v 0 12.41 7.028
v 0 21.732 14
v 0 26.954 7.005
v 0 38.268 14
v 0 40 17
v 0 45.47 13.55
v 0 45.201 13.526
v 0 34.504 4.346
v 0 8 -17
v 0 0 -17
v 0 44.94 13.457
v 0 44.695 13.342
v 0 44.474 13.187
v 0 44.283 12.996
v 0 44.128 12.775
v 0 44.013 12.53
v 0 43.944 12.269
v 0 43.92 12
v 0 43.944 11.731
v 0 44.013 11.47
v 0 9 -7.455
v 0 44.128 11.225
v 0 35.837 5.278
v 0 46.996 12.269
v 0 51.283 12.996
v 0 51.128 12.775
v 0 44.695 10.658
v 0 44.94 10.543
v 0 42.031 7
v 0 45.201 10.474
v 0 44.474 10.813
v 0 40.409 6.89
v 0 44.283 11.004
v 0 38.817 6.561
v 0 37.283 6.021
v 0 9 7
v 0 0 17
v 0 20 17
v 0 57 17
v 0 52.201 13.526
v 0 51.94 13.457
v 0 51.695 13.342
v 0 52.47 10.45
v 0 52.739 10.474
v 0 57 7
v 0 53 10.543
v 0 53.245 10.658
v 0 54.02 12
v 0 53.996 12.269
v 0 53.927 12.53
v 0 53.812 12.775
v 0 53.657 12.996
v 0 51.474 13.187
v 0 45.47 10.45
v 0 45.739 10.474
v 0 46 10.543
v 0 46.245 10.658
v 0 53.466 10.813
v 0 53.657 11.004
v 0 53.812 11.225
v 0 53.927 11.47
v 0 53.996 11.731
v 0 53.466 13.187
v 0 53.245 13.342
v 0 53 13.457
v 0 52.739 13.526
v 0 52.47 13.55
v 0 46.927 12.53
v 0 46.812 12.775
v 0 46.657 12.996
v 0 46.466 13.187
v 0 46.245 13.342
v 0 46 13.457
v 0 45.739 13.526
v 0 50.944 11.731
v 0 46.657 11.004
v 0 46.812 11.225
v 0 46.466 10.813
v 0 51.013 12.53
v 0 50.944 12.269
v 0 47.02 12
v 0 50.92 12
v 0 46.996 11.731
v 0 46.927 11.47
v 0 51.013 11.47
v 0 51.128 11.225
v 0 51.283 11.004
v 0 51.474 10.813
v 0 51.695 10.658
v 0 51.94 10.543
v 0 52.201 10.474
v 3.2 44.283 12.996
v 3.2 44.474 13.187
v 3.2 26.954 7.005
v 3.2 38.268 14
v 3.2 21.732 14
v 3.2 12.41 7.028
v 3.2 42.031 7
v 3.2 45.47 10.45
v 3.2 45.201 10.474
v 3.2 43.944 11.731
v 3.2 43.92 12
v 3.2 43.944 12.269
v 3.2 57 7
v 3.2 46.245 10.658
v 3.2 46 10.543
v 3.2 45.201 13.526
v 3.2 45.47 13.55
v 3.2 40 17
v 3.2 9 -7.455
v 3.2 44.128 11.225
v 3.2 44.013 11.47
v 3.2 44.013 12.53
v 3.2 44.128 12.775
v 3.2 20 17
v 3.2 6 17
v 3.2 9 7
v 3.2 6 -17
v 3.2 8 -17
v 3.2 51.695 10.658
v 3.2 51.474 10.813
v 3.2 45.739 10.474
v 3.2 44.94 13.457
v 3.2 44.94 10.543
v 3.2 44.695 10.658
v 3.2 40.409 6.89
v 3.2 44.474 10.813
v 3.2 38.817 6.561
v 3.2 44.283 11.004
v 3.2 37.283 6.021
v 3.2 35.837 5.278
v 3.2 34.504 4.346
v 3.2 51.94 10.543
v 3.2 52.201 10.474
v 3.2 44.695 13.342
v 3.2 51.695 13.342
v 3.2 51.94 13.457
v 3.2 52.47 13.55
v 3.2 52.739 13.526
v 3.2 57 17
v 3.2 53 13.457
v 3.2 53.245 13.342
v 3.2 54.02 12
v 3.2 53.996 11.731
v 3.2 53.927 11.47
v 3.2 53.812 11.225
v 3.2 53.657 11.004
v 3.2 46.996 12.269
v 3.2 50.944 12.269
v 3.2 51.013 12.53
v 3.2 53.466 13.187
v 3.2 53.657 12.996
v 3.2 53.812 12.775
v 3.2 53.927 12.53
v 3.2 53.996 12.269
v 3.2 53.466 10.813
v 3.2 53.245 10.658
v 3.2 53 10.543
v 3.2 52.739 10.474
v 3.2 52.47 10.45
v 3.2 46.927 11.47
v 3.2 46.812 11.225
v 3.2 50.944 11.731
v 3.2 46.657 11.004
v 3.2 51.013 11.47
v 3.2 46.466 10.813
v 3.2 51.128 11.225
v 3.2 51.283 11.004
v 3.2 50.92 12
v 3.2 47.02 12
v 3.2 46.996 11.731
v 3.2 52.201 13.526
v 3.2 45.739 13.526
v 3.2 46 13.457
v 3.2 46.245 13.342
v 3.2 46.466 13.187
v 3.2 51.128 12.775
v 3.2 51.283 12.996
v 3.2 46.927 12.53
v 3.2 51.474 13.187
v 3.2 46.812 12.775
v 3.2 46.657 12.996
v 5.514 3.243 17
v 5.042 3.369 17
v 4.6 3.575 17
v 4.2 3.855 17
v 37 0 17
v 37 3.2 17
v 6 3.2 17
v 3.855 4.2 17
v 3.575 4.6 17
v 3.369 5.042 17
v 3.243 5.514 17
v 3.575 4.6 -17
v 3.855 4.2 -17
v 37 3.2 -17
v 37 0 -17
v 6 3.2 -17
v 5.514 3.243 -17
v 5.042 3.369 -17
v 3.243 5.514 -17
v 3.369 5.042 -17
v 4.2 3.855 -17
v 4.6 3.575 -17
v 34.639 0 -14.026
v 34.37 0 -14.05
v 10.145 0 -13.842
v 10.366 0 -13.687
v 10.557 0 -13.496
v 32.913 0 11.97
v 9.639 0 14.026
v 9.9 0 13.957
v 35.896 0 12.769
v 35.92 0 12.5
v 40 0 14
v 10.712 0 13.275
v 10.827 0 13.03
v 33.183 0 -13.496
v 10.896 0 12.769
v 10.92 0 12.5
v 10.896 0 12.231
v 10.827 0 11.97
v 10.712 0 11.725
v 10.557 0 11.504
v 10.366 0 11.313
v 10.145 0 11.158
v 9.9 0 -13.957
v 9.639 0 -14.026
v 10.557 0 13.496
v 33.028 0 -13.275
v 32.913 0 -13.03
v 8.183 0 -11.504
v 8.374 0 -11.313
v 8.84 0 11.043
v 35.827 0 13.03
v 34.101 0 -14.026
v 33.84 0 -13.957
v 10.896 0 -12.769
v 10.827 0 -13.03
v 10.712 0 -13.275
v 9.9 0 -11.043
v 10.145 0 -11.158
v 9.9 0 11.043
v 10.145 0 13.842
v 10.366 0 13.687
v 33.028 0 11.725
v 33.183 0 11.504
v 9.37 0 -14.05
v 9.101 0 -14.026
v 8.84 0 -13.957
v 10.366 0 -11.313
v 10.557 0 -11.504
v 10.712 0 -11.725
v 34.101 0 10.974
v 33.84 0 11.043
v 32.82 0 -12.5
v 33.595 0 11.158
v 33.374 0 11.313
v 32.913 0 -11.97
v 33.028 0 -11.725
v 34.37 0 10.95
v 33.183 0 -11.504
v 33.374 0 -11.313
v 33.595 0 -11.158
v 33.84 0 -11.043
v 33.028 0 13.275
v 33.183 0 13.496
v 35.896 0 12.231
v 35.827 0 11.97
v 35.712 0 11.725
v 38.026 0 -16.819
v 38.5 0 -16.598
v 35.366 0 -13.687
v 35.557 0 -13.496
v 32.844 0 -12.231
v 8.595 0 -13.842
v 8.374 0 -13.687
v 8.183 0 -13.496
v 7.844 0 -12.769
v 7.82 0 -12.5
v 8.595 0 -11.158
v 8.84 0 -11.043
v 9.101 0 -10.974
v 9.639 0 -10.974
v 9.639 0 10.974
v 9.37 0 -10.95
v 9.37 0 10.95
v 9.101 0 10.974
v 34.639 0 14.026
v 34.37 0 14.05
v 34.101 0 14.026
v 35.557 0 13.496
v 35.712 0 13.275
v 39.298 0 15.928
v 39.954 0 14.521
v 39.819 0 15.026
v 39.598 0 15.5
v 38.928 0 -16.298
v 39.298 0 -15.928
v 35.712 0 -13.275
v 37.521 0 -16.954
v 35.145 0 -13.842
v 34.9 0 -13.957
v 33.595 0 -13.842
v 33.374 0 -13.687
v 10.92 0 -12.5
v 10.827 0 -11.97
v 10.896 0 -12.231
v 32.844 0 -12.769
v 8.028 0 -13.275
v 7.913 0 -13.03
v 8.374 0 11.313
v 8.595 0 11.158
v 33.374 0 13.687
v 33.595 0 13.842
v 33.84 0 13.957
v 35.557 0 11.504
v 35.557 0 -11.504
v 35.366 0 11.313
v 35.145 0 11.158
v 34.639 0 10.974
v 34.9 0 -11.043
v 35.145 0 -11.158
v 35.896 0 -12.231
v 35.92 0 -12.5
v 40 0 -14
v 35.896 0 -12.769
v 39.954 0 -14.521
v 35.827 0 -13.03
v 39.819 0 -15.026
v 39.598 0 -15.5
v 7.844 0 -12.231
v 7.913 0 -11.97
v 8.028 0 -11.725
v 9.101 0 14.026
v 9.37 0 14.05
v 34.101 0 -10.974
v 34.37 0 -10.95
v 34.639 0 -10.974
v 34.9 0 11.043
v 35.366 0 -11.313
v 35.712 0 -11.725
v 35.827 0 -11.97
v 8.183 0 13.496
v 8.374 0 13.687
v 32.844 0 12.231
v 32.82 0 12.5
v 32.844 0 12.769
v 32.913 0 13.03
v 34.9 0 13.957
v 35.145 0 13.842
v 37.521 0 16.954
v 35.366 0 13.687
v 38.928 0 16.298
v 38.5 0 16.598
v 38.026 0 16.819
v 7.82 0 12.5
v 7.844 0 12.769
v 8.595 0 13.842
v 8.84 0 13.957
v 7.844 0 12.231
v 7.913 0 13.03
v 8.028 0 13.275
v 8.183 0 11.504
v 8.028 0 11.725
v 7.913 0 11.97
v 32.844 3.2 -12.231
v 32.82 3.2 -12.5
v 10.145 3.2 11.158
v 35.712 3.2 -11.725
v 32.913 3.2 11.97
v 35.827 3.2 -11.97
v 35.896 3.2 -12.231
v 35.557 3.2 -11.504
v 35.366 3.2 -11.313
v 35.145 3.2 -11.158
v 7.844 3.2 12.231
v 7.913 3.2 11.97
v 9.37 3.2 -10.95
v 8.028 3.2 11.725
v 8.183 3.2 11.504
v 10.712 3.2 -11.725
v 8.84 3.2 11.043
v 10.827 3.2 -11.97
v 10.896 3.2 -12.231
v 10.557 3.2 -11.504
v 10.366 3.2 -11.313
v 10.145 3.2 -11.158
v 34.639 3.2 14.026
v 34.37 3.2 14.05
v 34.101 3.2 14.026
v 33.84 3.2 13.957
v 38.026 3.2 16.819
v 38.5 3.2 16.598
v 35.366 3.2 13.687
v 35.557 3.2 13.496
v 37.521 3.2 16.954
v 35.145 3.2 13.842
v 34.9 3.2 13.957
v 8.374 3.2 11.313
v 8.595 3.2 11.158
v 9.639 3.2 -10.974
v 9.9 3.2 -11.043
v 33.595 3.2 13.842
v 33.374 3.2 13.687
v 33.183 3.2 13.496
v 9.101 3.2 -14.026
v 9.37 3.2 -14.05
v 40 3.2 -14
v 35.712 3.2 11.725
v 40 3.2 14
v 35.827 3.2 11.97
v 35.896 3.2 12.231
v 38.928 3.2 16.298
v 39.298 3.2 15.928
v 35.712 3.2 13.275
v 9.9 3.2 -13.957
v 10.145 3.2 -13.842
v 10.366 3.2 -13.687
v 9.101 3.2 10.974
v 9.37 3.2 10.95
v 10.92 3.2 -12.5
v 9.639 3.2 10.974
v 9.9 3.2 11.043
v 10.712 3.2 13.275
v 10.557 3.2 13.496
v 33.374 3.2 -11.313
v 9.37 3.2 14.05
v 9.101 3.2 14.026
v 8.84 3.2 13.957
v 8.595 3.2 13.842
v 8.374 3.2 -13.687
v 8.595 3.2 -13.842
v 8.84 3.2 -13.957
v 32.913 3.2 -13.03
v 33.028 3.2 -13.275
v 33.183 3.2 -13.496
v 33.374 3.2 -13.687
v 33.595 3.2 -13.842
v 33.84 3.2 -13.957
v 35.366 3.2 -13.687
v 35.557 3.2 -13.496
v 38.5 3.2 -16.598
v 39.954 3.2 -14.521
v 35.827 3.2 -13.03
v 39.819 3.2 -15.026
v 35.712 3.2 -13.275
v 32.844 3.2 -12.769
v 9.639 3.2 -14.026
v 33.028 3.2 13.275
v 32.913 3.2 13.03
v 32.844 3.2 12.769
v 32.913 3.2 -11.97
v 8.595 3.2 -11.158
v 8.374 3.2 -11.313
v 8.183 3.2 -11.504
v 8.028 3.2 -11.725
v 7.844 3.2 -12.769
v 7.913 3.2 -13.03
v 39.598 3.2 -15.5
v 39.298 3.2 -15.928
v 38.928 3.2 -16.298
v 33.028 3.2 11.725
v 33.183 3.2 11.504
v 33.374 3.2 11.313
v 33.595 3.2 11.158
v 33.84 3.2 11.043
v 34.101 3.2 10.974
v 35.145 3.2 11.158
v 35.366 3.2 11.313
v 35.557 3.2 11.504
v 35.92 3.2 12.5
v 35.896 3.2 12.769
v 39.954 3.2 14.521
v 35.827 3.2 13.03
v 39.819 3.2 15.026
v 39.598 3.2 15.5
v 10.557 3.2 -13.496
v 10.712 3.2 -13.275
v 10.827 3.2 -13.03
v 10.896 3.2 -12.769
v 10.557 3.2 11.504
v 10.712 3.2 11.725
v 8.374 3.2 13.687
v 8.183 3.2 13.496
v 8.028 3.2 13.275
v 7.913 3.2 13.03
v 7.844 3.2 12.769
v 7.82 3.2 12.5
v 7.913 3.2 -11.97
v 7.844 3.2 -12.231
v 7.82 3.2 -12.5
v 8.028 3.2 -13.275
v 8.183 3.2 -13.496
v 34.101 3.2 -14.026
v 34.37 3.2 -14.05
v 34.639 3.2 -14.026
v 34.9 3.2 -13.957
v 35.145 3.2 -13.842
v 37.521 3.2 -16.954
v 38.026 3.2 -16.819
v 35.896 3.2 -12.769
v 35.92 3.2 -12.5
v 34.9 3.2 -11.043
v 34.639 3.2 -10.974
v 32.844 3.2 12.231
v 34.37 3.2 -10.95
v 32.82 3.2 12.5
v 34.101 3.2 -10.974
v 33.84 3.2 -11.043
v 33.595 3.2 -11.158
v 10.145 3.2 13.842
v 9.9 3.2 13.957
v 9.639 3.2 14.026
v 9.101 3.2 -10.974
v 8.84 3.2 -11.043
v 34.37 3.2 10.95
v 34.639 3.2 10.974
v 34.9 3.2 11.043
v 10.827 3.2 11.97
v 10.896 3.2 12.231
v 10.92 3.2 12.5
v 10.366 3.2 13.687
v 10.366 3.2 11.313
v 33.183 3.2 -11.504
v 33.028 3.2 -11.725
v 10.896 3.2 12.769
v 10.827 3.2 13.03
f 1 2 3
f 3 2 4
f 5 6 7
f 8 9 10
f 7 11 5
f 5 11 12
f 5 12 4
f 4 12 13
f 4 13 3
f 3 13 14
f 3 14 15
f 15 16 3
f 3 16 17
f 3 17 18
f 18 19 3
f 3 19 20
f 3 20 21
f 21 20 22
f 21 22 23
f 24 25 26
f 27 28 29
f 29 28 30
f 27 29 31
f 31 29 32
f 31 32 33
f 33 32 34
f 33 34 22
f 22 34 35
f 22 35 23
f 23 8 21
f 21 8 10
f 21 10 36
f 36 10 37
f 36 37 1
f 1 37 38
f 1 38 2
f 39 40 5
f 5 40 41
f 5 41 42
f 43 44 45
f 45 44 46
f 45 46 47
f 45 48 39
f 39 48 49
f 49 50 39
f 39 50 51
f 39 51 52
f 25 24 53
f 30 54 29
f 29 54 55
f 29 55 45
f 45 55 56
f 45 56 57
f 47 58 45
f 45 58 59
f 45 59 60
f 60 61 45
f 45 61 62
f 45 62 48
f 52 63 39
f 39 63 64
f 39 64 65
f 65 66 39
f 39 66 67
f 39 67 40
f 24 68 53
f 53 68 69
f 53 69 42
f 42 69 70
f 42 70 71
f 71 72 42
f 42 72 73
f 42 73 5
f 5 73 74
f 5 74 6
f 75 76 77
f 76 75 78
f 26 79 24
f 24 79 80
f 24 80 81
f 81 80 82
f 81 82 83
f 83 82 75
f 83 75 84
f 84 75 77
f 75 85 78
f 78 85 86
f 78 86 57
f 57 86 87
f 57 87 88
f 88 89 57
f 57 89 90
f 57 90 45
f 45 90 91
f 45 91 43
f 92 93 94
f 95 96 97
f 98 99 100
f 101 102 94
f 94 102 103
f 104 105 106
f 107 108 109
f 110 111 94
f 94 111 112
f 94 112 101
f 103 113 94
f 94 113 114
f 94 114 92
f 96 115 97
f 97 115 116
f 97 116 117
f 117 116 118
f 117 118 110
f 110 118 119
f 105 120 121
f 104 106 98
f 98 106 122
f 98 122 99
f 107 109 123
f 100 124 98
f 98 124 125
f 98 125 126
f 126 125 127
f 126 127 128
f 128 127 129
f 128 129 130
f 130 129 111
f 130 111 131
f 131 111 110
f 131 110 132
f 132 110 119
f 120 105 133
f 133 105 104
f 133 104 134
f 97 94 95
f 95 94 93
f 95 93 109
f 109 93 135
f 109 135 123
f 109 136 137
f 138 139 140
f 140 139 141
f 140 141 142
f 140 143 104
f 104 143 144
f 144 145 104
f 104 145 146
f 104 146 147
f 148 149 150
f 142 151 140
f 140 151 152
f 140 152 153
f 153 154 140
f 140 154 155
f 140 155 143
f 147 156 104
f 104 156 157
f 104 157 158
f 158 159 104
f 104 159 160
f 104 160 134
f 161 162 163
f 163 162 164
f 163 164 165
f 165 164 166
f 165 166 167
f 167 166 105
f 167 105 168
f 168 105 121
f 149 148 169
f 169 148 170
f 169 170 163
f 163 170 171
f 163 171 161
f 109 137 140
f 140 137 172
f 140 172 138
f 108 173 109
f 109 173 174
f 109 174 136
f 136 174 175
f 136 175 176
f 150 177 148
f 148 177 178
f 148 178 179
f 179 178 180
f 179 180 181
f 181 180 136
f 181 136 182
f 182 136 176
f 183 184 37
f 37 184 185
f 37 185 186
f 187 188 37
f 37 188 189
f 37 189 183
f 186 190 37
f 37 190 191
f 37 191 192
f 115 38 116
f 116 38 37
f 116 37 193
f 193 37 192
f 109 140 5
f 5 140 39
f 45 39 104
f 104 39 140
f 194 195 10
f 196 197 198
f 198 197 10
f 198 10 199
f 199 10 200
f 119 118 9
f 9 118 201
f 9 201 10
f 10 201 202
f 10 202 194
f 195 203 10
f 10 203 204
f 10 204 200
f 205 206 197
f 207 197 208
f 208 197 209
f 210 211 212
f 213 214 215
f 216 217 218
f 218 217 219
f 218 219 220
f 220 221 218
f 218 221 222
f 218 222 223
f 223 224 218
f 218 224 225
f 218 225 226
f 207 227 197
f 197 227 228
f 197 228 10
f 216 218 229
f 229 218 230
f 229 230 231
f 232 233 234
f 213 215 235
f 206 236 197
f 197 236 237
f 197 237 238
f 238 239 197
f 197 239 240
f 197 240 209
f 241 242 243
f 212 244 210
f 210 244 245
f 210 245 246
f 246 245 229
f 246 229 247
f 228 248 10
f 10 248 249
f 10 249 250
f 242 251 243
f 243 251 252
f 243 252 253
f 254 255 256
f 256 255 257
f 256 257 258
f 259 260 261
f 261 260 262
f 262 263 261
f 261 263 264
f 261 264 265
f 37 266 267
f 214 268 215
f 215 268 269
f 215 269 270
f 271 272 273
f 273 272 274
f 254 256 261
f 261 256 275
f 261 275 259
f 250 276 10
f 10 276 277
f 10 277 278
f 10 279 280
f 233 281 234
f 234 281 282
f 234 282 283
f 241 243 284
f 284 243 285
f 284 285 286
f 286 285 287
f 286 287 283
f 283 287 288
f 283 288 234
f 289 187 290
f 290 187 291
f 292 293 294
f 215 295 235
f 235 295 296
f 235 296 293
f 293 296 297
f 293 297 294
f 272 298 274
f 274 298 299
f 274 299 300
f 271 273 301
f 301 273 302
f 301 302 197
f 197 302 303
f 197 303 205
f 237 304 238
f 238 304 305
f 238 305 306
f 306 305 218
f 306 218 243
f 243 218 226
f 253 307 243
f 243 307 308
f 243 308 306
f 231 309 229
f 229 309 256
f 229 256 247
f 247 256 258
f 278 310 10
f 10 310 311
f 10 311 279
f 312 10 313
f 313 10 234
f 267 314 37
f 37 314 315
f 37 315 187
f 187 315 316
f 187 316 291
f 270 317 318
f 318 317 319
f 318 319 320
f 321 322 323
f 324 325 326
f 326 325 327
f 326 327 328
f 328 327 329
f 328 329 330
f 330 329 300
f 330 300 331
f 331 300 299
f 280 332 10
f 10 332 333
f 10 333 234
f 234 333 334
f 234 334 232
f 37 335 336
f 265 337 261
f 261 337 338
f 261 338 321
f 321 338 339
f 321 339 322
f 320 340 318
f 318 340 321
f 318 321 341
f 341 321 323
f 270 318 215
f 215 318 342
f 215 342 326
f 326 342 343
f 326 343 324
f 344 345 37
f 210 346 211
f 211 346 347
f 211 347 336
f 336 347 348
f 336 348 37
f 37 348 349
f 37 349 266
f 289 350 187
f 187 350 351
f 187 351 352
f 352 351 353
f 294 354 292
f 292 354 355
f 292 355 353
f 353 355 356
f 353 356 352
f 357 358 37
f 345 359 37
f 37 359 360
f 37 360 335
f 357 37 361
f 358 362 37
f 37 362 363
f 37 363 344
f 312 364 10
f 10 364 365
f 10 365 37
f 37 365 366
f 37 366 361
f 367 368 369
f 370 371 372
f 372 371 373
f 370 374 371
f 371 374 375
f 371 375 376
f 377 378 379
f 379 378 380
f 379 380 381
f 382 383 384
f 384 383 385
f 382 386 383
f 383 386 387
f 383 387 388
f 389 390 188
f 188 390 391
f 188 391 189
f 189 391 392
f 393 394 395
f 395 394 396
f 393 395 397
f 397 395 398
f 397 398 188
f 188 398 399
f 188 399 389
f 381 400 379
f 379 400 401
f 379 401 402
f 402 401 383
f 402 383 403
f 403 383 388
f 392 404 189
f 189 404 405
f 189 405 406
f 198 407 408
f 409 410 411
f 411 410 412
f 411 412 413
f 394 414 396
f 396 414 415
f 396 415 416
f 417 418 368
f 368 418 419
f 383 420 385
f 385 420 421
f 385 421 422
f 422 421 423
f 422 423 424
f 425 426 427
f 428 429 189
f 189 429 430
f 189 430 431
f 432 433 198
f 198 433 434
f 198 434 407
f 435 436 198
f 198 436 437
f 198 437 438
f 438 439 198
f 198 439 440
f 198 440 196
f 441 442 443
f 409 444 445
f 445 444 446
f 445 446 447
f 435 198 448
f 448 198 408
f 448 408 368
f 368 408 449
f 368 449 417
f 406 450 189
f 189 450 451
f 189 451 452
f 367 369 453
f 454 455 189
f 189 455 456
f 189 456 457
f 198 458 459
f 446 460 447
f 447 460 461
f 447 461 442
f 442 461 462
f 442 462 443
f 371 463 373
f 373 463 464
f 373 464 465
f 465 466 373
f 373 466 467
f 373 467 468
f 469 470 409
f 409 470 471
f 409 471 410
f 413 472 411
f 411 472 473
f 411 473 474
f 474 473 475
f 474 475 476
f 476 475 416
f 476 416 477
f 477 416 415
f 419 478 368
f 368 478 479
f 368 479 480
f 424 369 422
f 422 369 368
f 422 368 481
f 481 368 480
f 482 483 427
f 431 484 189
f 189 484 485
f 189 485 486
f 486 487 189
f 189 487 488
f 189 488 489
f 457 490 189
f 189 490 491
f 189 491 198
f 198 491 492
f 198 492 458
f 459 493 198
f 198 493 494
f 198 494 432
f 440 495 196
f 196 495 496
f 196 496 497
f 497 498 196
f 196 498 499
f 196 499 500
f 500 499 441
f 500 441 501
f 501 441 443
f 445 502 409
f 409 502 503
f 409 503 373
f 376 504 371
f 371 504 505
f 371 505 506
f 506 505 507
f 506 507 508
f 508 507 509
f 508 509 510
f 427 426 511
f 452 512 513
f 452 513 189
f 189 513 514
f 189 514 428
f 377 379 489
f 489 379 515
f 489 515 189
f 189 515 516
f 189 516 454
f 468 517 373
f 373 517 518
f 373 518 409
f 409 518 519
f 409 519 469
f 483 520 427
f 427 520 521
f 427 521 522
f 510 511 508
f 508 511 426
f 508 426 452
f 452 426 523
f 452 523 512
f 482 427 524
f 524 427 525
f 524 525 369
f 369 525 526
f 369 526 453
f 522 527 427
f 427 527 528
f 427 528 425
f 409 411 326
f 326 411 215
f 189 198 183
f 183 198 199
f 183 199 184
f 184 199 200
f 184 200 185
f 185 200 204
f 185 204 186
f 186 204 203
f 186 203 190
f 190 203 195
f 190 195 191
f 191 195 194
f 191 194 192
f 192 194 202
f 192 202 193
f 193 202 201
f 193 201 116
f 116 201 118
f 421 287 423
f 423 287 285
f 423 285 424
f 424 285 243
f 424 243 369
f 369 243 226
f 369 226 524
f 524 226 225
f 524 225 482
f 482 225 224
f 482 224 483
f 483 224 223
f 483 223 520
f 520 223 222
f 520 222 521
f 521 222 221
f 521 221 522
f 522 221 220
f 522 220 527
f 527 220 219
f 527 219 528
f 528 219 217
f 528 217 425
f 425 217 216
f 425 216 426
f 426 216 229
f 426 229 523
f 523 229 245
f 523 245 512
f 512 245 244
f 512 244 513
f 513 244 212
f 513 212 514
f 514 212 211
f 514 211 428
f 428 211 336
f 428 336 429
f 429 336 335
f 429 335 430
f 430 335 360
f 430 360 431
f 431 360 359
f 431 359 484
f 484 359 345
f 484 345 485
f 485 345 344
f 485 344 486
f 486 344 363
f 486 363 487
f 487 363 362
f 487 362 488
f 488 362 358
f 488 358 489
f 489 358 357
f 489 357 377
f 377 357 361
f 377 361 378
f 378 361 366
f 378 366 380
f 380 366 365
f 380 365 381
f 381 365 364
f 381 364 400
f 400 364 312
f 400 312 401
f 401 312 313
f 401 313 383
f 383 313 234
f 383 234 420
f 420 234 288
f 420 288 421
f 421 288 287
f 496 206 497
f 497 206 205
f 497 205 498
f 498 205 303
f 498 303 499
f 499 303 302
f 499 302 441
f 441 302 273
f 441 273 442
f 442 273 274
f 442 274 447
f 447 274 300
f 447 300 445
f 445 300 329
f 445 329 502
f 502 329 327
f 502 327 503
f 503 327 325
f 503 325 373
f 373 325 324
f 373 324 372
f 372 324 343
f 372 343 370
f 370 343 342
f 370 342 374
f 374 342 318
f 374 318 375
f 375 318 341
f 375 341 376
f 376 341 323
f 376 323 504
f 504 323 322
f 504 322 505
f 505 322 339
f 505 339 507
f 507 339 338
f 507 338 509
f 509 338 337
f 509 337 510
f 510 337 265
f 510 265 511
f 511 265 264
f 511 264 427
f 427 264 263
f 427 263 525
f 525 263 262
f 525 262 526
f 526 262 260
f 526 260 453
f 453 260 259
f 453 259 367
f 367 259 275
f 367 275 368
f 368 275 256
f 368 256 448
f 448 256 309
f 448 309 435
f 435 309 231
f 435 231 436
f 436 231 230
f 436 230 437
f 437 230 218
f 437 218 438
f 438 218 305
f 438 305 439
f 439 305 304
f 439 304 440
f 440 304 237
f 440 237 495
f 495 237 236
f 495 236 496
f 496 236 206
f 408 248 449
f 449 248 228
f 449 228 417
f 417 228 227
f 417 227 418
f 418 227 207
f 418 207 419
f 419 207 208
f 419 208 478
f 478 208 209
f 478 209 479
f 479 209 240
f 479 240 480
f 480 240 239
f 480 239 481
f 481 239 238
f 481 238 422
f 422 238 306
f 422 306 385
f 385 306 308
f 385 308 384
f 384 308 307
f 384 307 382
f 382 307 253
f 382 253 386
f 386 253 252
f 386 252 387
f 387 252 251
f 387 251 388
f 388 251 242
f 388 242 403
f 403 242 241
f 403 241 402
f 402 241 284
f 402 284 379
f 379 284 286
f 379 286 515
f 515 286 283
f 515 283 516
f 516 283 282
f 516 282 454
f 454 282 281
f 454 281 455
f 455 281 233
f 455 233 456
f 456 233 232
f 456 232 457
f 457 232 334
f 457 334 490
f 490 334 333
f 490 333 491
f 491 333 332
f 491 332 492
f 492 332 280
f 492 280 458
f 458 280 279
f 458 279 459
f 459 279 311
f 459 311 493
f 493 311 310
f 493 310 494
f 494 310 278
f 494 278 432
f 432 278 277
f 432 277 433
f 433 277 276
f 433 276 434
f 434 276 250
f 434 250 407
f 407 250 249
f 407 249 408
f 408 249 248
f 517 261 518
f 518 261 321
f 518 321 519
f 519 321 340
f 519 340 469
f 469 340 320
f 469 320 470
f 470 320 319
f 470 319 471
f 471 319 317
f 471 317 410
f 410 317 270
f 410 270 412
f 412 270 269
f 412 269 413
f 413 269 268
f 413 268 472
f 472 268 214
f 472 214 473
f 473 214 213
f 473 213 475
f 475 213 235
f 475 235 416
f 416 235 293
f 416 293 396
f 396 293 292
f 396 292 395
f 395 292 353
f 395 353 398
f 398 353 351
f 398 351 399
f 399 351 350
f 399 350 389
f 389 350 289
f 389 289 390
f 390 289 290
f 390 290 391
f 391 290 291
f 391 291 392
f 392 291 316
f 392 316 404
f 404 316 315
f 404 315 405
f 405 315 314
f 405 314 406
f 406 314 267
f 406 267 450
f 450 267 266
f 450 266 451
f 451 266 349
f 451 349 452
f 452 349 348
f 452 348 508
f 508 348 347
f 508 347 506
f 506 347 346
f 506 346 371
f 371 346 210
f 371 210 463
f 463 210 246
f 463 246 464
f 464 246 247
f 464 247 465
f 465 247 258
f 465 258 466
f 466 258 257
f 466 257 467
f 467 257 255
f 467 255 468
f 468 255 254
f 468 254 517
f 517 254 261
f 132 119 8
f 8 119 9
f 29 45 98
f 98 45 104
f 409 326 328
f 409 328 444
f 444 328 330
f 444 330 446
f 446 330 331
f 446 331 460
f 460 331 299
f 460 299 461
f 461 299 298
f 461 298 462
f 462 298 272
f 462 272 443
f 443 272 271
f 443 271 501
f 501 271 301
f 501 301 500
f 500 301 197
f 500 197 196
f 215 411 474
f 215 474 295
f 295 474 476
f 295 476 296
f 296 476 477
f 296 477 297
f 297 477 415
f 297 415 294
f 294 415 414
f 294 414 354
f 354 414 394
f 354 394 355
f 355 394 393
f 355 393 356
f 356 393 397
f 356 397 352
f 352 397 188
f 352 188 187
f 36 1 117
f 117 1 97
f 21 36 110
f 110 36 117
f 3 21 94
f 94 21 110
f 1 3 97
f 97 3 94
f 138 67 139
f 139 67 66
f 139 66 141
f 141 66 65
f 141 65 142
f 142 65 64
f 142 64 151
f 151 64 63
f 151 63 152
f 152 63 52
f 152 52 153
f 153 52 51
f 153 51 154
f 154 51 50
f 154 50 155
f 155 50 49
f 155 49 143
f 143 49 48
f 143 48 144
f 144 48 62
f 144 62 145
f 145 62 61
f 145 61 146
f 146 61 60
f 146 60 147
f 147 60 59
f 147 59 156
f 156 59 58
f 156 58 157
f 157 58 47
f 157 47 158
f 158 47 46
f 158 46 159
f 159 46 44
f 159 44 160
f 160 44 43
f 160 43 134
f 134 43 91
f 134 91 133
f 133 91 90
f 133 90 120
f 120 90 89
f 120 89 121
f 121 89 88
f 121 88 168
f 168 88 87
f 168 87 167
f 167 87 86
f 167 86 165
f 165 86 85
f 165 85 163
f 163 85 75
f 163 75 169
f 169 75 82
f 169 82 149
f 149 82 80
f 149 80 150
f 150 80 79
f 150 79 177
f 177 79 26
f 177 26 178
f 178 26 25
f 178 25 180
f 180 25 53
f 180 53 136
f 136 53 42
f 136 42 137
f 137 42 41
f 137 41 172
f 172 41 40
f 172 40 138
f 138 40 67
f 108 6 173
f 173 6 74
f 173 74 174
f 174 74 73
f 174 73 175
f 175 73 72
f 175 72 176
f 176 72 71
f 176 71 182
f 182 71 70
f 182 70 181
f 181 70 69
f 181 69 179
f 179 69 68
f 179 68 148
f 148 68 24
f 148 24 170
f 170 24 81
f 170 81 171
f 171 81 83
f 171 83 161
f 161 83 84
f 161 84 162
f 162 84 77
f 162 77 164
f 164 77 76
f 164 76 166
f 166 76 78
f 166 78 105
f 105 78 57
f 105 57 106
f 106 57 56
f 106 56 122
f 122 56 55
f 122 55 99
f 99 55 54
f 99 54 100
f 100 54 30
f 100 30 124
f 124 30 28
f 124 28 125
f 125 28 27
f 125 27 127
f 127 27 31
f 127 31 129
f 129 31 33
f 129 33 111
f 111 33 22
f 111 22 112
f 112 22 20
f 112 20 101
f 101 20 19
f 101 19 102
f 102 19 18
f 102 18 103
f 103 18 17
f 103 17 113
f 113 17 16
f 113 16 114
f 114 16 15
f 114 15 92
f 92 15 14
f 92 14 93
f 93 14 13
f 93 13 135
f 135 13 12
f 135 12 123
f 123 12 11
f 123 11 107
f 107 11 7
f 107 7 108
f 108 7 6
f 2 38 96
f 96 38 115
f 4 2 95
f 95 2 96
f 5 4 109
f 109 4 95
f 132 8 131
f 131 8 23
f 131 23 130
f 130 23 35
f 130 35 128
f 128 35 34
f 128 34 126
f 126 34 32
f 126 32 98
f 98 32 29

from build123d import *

# Parameters (mm, degrees)
BOSS_EXTRUDE1_DEPTH      = 17
BOSS_EXTRUDE1_DEPTH_BACK = 17
FILLET1_R                = 2.8
SKETCH4_R                = 1.5
CUT_EXTRUDE2_DEPTH       = 20
CUT_EXTRUDE3_REACH       = 73.68
SKETCH5_R                = 1.55
CUT_EXTRUDE4_DEPTH       = 72.67984375
CUT_EXTRUDE4_DEPTH_BACK  = 4
FILLET3_R                = 3
CUT_EXTRUDE5_DEPTH       = 5
SKETCH8_R                = 1.55
CUT_EXTRUDE8_DEPTH       = 10
CORTAR_EXTRUIR1_REACH    = 73.68
REDONDEO1_R              = 12


with BuildPart() as part:
    # Sketch1 → Boss-Extrude1 (new, two sides: drawn at the far end of the back side and taken through both)
    with BuildSketch(Plane.XY.offset(-BOSS_EXTRUDE1_DEPTH_BACK)):
        Polygon((0, 0), (0, 57), (3.2, 57), (3.2, 3.2), (40, 3.2), (40, 0), align=None)
    extrude(amount=BOSS_EXTRUDE1_DEPTH + BOSS_EXTRUDE1_DEPTH_BACK)

    # Fillet1
    fillet1_edges = [part.edges().sort_by_distance(p)[0] for p in [
        (3.2, 3.2, 0),
    ]]
    fillet(fillet1_edges, radius=FILLET1_R)

    # Sketch4 → Cut-Extrude2 (cut)
    with BuildSketch(Plane.XZ):
        with Locations((9.37, -12.5)):
            Circle(SKETCH4_R)
        with Locations((9.37, 12.5)):
            Circle(SKETCH4_R)
        with Locations((34.37, -12.5)):
            Circle(SKETCH4_R)
        with Locations((34.37, 12.5)):
            Circle(SKETCH4_R)
    extrude(amount=-CUT_EXTRUDE2_DEPTH, mode=Mode.SUBTRACT)

    # Sketch5 → Cut-Extrude3 (cut, up to next)
    with BuildSketch(Plane.XZ, mode=Mode.PRIVATE) as cut_extrude3_sk1:
        with Locations((9.37, 12.5)):
            Circle(SKETCH5_R)
    cut_extrude3_tool1 = extrude(cut_extrude3_sk1.sketch, amount=-CUT_EXTRUDE3_REACH, mode=Mode.PRIVATE) & part.part
    # Sketch5 → Cut-Extrude3 (cut, up to next)
    with BuildSketch(Plane.XZ, mode=Mode.PRIVATE) as cut_extrude3_sk2:
        with Locations((34.37, 12.5)):
            Circle(SKETCH5_R)
    cut_extrude3_tool2 = extrude(cut_extrude3_sk2.sketch, amount=-CUT_EXTRUDE3_REACH, mode=Mode.PRIVATE) & part.part
    # Sketch5 → Cut-Extrude3 (cut, up to next)
    with BuildSketch(Plane.XZ, mode=Mode.PRIVATE) as cut_extrude3_sk3:
        with Locations((9.37, -12.5)):
            Circle(SKETCH5_R)
    cut_extrude3_tool3 = extrude(cut_extrude3_sk3.sketch, amount=-CUT_EXTRUDE3_REACH, mode=Mode.PRIVATE) & part.part
    # Sketch5 → Cut-Extrude3 (cut, up to next)
    with BuildSketch(Plane.XZ, mode=Mode.PRIVATE) as cut_extrude3_sk4:
        with Locations((34.37, -12.5)):
            Circle(SKETCH5_R)
    cut_extrude3_tool4 = extrude(cut_extrude3_sk4.sketch, amount=-CUT_EXTRUDE3_REACH, mode=Mode.PRIVATE) & part.part
    add(cut_extrude3_tool1.solids().sort_by_distance((9.37, 0, 12.5))[0], mode=Mode.SUBTRACT)
    add(cut_extrude3_tool2.solids().sort_by_distance((34.37, 0, 12.5))[0], mode=Mode.SUBTRACT)
    add(cut_extrude3_tool3.solids().sort_by_distance((9.37, 0, -12.5))[0], mode=Mode.SUBTRACT)
    add(cut_extrude3_tool4.solids().sort_by_distance((34.37, 0, -12.5))[0], mode=Mode.SUBTRACT)

    # Sketch6 → Cut-Extrude4 (cut, two sides: drawn at the far end of the back side and taken through both)
    with BuildSketch(Plane.ZY.offset(-CUT_EXTRUDE4_DEPTH_BACK)):
        Polygon((7, 57), (-17, 57), (-17, 8), (7, 37.8), align=None)
    extrude(amount=CUT_EXTRUDE4_DEPTH + CUT_EXTRUDE4_DEPTH_BACK, mode=Mode.SUBTRACT)

    # Fillet3
    fillet3_edges = [part.edges().sort_by_distance(p)[0] for p in [
        (40, 1.6, -17),
        (40, 1.6, 17),
    ]]
    fillet(fillet3_edges, radius=FILLET3_R)

    # Sketch7 → Cut-Extrude5 (cut)
    with BuildSketch(Plane.ZY):
        Polygon((-7.454709153, 9), (7, 9), (7.028471746, 12.409902656), (7.004699048, 26.953765183), align=None)
    extrude(amount=-CUT_EXTRUDE5_DEPTH, mode=Mode.SUBTRACT)

    # Sketch8 → Cut-Extrude8 (cut)
    with BuildSketch(Plane.ZY):
        with Locations((12, 52.47)):
            Circle(SKETCH8_R)
        with Locations((12, 45.47)):
            Circle(SKETCH8_R)
    extrude(amount=-CUT_EXTRUDE8_DEPTH, mode=Mode.SUBTRACT)

    # Croquis1 → Cortar-Extruir1 (cut, up to next)
    with BuildSketch(Plane.ZY, mode=Mode.PRIVATE) as cortar_extruir1_sk1:
        Polygon((17, 20), (14, 21.732050808), (14, 38.267949192), (17, 40), align=None)
    cortar_extruir1_tool1 = extrude(cortar_extruir1_sk1.sketch, amount=-CORTAR_EXTRUIR1_REACH, mode=Mode.PRIVATE) & part.part
    add(cortar_extruir1_tool1.solids().sort_by_distance((0, 30, 15.547407))[0], mode=Mode.SUBTRACT)

    # Redondeo1
    redondeo1_edges = [part.edges().sort_by_distance(p)[0] for p in [
        (1.6, 37.8, 7),
    ]]
    fillet(redondeo1_edges, radius=REDONDEO1_R)


solid = part.part
